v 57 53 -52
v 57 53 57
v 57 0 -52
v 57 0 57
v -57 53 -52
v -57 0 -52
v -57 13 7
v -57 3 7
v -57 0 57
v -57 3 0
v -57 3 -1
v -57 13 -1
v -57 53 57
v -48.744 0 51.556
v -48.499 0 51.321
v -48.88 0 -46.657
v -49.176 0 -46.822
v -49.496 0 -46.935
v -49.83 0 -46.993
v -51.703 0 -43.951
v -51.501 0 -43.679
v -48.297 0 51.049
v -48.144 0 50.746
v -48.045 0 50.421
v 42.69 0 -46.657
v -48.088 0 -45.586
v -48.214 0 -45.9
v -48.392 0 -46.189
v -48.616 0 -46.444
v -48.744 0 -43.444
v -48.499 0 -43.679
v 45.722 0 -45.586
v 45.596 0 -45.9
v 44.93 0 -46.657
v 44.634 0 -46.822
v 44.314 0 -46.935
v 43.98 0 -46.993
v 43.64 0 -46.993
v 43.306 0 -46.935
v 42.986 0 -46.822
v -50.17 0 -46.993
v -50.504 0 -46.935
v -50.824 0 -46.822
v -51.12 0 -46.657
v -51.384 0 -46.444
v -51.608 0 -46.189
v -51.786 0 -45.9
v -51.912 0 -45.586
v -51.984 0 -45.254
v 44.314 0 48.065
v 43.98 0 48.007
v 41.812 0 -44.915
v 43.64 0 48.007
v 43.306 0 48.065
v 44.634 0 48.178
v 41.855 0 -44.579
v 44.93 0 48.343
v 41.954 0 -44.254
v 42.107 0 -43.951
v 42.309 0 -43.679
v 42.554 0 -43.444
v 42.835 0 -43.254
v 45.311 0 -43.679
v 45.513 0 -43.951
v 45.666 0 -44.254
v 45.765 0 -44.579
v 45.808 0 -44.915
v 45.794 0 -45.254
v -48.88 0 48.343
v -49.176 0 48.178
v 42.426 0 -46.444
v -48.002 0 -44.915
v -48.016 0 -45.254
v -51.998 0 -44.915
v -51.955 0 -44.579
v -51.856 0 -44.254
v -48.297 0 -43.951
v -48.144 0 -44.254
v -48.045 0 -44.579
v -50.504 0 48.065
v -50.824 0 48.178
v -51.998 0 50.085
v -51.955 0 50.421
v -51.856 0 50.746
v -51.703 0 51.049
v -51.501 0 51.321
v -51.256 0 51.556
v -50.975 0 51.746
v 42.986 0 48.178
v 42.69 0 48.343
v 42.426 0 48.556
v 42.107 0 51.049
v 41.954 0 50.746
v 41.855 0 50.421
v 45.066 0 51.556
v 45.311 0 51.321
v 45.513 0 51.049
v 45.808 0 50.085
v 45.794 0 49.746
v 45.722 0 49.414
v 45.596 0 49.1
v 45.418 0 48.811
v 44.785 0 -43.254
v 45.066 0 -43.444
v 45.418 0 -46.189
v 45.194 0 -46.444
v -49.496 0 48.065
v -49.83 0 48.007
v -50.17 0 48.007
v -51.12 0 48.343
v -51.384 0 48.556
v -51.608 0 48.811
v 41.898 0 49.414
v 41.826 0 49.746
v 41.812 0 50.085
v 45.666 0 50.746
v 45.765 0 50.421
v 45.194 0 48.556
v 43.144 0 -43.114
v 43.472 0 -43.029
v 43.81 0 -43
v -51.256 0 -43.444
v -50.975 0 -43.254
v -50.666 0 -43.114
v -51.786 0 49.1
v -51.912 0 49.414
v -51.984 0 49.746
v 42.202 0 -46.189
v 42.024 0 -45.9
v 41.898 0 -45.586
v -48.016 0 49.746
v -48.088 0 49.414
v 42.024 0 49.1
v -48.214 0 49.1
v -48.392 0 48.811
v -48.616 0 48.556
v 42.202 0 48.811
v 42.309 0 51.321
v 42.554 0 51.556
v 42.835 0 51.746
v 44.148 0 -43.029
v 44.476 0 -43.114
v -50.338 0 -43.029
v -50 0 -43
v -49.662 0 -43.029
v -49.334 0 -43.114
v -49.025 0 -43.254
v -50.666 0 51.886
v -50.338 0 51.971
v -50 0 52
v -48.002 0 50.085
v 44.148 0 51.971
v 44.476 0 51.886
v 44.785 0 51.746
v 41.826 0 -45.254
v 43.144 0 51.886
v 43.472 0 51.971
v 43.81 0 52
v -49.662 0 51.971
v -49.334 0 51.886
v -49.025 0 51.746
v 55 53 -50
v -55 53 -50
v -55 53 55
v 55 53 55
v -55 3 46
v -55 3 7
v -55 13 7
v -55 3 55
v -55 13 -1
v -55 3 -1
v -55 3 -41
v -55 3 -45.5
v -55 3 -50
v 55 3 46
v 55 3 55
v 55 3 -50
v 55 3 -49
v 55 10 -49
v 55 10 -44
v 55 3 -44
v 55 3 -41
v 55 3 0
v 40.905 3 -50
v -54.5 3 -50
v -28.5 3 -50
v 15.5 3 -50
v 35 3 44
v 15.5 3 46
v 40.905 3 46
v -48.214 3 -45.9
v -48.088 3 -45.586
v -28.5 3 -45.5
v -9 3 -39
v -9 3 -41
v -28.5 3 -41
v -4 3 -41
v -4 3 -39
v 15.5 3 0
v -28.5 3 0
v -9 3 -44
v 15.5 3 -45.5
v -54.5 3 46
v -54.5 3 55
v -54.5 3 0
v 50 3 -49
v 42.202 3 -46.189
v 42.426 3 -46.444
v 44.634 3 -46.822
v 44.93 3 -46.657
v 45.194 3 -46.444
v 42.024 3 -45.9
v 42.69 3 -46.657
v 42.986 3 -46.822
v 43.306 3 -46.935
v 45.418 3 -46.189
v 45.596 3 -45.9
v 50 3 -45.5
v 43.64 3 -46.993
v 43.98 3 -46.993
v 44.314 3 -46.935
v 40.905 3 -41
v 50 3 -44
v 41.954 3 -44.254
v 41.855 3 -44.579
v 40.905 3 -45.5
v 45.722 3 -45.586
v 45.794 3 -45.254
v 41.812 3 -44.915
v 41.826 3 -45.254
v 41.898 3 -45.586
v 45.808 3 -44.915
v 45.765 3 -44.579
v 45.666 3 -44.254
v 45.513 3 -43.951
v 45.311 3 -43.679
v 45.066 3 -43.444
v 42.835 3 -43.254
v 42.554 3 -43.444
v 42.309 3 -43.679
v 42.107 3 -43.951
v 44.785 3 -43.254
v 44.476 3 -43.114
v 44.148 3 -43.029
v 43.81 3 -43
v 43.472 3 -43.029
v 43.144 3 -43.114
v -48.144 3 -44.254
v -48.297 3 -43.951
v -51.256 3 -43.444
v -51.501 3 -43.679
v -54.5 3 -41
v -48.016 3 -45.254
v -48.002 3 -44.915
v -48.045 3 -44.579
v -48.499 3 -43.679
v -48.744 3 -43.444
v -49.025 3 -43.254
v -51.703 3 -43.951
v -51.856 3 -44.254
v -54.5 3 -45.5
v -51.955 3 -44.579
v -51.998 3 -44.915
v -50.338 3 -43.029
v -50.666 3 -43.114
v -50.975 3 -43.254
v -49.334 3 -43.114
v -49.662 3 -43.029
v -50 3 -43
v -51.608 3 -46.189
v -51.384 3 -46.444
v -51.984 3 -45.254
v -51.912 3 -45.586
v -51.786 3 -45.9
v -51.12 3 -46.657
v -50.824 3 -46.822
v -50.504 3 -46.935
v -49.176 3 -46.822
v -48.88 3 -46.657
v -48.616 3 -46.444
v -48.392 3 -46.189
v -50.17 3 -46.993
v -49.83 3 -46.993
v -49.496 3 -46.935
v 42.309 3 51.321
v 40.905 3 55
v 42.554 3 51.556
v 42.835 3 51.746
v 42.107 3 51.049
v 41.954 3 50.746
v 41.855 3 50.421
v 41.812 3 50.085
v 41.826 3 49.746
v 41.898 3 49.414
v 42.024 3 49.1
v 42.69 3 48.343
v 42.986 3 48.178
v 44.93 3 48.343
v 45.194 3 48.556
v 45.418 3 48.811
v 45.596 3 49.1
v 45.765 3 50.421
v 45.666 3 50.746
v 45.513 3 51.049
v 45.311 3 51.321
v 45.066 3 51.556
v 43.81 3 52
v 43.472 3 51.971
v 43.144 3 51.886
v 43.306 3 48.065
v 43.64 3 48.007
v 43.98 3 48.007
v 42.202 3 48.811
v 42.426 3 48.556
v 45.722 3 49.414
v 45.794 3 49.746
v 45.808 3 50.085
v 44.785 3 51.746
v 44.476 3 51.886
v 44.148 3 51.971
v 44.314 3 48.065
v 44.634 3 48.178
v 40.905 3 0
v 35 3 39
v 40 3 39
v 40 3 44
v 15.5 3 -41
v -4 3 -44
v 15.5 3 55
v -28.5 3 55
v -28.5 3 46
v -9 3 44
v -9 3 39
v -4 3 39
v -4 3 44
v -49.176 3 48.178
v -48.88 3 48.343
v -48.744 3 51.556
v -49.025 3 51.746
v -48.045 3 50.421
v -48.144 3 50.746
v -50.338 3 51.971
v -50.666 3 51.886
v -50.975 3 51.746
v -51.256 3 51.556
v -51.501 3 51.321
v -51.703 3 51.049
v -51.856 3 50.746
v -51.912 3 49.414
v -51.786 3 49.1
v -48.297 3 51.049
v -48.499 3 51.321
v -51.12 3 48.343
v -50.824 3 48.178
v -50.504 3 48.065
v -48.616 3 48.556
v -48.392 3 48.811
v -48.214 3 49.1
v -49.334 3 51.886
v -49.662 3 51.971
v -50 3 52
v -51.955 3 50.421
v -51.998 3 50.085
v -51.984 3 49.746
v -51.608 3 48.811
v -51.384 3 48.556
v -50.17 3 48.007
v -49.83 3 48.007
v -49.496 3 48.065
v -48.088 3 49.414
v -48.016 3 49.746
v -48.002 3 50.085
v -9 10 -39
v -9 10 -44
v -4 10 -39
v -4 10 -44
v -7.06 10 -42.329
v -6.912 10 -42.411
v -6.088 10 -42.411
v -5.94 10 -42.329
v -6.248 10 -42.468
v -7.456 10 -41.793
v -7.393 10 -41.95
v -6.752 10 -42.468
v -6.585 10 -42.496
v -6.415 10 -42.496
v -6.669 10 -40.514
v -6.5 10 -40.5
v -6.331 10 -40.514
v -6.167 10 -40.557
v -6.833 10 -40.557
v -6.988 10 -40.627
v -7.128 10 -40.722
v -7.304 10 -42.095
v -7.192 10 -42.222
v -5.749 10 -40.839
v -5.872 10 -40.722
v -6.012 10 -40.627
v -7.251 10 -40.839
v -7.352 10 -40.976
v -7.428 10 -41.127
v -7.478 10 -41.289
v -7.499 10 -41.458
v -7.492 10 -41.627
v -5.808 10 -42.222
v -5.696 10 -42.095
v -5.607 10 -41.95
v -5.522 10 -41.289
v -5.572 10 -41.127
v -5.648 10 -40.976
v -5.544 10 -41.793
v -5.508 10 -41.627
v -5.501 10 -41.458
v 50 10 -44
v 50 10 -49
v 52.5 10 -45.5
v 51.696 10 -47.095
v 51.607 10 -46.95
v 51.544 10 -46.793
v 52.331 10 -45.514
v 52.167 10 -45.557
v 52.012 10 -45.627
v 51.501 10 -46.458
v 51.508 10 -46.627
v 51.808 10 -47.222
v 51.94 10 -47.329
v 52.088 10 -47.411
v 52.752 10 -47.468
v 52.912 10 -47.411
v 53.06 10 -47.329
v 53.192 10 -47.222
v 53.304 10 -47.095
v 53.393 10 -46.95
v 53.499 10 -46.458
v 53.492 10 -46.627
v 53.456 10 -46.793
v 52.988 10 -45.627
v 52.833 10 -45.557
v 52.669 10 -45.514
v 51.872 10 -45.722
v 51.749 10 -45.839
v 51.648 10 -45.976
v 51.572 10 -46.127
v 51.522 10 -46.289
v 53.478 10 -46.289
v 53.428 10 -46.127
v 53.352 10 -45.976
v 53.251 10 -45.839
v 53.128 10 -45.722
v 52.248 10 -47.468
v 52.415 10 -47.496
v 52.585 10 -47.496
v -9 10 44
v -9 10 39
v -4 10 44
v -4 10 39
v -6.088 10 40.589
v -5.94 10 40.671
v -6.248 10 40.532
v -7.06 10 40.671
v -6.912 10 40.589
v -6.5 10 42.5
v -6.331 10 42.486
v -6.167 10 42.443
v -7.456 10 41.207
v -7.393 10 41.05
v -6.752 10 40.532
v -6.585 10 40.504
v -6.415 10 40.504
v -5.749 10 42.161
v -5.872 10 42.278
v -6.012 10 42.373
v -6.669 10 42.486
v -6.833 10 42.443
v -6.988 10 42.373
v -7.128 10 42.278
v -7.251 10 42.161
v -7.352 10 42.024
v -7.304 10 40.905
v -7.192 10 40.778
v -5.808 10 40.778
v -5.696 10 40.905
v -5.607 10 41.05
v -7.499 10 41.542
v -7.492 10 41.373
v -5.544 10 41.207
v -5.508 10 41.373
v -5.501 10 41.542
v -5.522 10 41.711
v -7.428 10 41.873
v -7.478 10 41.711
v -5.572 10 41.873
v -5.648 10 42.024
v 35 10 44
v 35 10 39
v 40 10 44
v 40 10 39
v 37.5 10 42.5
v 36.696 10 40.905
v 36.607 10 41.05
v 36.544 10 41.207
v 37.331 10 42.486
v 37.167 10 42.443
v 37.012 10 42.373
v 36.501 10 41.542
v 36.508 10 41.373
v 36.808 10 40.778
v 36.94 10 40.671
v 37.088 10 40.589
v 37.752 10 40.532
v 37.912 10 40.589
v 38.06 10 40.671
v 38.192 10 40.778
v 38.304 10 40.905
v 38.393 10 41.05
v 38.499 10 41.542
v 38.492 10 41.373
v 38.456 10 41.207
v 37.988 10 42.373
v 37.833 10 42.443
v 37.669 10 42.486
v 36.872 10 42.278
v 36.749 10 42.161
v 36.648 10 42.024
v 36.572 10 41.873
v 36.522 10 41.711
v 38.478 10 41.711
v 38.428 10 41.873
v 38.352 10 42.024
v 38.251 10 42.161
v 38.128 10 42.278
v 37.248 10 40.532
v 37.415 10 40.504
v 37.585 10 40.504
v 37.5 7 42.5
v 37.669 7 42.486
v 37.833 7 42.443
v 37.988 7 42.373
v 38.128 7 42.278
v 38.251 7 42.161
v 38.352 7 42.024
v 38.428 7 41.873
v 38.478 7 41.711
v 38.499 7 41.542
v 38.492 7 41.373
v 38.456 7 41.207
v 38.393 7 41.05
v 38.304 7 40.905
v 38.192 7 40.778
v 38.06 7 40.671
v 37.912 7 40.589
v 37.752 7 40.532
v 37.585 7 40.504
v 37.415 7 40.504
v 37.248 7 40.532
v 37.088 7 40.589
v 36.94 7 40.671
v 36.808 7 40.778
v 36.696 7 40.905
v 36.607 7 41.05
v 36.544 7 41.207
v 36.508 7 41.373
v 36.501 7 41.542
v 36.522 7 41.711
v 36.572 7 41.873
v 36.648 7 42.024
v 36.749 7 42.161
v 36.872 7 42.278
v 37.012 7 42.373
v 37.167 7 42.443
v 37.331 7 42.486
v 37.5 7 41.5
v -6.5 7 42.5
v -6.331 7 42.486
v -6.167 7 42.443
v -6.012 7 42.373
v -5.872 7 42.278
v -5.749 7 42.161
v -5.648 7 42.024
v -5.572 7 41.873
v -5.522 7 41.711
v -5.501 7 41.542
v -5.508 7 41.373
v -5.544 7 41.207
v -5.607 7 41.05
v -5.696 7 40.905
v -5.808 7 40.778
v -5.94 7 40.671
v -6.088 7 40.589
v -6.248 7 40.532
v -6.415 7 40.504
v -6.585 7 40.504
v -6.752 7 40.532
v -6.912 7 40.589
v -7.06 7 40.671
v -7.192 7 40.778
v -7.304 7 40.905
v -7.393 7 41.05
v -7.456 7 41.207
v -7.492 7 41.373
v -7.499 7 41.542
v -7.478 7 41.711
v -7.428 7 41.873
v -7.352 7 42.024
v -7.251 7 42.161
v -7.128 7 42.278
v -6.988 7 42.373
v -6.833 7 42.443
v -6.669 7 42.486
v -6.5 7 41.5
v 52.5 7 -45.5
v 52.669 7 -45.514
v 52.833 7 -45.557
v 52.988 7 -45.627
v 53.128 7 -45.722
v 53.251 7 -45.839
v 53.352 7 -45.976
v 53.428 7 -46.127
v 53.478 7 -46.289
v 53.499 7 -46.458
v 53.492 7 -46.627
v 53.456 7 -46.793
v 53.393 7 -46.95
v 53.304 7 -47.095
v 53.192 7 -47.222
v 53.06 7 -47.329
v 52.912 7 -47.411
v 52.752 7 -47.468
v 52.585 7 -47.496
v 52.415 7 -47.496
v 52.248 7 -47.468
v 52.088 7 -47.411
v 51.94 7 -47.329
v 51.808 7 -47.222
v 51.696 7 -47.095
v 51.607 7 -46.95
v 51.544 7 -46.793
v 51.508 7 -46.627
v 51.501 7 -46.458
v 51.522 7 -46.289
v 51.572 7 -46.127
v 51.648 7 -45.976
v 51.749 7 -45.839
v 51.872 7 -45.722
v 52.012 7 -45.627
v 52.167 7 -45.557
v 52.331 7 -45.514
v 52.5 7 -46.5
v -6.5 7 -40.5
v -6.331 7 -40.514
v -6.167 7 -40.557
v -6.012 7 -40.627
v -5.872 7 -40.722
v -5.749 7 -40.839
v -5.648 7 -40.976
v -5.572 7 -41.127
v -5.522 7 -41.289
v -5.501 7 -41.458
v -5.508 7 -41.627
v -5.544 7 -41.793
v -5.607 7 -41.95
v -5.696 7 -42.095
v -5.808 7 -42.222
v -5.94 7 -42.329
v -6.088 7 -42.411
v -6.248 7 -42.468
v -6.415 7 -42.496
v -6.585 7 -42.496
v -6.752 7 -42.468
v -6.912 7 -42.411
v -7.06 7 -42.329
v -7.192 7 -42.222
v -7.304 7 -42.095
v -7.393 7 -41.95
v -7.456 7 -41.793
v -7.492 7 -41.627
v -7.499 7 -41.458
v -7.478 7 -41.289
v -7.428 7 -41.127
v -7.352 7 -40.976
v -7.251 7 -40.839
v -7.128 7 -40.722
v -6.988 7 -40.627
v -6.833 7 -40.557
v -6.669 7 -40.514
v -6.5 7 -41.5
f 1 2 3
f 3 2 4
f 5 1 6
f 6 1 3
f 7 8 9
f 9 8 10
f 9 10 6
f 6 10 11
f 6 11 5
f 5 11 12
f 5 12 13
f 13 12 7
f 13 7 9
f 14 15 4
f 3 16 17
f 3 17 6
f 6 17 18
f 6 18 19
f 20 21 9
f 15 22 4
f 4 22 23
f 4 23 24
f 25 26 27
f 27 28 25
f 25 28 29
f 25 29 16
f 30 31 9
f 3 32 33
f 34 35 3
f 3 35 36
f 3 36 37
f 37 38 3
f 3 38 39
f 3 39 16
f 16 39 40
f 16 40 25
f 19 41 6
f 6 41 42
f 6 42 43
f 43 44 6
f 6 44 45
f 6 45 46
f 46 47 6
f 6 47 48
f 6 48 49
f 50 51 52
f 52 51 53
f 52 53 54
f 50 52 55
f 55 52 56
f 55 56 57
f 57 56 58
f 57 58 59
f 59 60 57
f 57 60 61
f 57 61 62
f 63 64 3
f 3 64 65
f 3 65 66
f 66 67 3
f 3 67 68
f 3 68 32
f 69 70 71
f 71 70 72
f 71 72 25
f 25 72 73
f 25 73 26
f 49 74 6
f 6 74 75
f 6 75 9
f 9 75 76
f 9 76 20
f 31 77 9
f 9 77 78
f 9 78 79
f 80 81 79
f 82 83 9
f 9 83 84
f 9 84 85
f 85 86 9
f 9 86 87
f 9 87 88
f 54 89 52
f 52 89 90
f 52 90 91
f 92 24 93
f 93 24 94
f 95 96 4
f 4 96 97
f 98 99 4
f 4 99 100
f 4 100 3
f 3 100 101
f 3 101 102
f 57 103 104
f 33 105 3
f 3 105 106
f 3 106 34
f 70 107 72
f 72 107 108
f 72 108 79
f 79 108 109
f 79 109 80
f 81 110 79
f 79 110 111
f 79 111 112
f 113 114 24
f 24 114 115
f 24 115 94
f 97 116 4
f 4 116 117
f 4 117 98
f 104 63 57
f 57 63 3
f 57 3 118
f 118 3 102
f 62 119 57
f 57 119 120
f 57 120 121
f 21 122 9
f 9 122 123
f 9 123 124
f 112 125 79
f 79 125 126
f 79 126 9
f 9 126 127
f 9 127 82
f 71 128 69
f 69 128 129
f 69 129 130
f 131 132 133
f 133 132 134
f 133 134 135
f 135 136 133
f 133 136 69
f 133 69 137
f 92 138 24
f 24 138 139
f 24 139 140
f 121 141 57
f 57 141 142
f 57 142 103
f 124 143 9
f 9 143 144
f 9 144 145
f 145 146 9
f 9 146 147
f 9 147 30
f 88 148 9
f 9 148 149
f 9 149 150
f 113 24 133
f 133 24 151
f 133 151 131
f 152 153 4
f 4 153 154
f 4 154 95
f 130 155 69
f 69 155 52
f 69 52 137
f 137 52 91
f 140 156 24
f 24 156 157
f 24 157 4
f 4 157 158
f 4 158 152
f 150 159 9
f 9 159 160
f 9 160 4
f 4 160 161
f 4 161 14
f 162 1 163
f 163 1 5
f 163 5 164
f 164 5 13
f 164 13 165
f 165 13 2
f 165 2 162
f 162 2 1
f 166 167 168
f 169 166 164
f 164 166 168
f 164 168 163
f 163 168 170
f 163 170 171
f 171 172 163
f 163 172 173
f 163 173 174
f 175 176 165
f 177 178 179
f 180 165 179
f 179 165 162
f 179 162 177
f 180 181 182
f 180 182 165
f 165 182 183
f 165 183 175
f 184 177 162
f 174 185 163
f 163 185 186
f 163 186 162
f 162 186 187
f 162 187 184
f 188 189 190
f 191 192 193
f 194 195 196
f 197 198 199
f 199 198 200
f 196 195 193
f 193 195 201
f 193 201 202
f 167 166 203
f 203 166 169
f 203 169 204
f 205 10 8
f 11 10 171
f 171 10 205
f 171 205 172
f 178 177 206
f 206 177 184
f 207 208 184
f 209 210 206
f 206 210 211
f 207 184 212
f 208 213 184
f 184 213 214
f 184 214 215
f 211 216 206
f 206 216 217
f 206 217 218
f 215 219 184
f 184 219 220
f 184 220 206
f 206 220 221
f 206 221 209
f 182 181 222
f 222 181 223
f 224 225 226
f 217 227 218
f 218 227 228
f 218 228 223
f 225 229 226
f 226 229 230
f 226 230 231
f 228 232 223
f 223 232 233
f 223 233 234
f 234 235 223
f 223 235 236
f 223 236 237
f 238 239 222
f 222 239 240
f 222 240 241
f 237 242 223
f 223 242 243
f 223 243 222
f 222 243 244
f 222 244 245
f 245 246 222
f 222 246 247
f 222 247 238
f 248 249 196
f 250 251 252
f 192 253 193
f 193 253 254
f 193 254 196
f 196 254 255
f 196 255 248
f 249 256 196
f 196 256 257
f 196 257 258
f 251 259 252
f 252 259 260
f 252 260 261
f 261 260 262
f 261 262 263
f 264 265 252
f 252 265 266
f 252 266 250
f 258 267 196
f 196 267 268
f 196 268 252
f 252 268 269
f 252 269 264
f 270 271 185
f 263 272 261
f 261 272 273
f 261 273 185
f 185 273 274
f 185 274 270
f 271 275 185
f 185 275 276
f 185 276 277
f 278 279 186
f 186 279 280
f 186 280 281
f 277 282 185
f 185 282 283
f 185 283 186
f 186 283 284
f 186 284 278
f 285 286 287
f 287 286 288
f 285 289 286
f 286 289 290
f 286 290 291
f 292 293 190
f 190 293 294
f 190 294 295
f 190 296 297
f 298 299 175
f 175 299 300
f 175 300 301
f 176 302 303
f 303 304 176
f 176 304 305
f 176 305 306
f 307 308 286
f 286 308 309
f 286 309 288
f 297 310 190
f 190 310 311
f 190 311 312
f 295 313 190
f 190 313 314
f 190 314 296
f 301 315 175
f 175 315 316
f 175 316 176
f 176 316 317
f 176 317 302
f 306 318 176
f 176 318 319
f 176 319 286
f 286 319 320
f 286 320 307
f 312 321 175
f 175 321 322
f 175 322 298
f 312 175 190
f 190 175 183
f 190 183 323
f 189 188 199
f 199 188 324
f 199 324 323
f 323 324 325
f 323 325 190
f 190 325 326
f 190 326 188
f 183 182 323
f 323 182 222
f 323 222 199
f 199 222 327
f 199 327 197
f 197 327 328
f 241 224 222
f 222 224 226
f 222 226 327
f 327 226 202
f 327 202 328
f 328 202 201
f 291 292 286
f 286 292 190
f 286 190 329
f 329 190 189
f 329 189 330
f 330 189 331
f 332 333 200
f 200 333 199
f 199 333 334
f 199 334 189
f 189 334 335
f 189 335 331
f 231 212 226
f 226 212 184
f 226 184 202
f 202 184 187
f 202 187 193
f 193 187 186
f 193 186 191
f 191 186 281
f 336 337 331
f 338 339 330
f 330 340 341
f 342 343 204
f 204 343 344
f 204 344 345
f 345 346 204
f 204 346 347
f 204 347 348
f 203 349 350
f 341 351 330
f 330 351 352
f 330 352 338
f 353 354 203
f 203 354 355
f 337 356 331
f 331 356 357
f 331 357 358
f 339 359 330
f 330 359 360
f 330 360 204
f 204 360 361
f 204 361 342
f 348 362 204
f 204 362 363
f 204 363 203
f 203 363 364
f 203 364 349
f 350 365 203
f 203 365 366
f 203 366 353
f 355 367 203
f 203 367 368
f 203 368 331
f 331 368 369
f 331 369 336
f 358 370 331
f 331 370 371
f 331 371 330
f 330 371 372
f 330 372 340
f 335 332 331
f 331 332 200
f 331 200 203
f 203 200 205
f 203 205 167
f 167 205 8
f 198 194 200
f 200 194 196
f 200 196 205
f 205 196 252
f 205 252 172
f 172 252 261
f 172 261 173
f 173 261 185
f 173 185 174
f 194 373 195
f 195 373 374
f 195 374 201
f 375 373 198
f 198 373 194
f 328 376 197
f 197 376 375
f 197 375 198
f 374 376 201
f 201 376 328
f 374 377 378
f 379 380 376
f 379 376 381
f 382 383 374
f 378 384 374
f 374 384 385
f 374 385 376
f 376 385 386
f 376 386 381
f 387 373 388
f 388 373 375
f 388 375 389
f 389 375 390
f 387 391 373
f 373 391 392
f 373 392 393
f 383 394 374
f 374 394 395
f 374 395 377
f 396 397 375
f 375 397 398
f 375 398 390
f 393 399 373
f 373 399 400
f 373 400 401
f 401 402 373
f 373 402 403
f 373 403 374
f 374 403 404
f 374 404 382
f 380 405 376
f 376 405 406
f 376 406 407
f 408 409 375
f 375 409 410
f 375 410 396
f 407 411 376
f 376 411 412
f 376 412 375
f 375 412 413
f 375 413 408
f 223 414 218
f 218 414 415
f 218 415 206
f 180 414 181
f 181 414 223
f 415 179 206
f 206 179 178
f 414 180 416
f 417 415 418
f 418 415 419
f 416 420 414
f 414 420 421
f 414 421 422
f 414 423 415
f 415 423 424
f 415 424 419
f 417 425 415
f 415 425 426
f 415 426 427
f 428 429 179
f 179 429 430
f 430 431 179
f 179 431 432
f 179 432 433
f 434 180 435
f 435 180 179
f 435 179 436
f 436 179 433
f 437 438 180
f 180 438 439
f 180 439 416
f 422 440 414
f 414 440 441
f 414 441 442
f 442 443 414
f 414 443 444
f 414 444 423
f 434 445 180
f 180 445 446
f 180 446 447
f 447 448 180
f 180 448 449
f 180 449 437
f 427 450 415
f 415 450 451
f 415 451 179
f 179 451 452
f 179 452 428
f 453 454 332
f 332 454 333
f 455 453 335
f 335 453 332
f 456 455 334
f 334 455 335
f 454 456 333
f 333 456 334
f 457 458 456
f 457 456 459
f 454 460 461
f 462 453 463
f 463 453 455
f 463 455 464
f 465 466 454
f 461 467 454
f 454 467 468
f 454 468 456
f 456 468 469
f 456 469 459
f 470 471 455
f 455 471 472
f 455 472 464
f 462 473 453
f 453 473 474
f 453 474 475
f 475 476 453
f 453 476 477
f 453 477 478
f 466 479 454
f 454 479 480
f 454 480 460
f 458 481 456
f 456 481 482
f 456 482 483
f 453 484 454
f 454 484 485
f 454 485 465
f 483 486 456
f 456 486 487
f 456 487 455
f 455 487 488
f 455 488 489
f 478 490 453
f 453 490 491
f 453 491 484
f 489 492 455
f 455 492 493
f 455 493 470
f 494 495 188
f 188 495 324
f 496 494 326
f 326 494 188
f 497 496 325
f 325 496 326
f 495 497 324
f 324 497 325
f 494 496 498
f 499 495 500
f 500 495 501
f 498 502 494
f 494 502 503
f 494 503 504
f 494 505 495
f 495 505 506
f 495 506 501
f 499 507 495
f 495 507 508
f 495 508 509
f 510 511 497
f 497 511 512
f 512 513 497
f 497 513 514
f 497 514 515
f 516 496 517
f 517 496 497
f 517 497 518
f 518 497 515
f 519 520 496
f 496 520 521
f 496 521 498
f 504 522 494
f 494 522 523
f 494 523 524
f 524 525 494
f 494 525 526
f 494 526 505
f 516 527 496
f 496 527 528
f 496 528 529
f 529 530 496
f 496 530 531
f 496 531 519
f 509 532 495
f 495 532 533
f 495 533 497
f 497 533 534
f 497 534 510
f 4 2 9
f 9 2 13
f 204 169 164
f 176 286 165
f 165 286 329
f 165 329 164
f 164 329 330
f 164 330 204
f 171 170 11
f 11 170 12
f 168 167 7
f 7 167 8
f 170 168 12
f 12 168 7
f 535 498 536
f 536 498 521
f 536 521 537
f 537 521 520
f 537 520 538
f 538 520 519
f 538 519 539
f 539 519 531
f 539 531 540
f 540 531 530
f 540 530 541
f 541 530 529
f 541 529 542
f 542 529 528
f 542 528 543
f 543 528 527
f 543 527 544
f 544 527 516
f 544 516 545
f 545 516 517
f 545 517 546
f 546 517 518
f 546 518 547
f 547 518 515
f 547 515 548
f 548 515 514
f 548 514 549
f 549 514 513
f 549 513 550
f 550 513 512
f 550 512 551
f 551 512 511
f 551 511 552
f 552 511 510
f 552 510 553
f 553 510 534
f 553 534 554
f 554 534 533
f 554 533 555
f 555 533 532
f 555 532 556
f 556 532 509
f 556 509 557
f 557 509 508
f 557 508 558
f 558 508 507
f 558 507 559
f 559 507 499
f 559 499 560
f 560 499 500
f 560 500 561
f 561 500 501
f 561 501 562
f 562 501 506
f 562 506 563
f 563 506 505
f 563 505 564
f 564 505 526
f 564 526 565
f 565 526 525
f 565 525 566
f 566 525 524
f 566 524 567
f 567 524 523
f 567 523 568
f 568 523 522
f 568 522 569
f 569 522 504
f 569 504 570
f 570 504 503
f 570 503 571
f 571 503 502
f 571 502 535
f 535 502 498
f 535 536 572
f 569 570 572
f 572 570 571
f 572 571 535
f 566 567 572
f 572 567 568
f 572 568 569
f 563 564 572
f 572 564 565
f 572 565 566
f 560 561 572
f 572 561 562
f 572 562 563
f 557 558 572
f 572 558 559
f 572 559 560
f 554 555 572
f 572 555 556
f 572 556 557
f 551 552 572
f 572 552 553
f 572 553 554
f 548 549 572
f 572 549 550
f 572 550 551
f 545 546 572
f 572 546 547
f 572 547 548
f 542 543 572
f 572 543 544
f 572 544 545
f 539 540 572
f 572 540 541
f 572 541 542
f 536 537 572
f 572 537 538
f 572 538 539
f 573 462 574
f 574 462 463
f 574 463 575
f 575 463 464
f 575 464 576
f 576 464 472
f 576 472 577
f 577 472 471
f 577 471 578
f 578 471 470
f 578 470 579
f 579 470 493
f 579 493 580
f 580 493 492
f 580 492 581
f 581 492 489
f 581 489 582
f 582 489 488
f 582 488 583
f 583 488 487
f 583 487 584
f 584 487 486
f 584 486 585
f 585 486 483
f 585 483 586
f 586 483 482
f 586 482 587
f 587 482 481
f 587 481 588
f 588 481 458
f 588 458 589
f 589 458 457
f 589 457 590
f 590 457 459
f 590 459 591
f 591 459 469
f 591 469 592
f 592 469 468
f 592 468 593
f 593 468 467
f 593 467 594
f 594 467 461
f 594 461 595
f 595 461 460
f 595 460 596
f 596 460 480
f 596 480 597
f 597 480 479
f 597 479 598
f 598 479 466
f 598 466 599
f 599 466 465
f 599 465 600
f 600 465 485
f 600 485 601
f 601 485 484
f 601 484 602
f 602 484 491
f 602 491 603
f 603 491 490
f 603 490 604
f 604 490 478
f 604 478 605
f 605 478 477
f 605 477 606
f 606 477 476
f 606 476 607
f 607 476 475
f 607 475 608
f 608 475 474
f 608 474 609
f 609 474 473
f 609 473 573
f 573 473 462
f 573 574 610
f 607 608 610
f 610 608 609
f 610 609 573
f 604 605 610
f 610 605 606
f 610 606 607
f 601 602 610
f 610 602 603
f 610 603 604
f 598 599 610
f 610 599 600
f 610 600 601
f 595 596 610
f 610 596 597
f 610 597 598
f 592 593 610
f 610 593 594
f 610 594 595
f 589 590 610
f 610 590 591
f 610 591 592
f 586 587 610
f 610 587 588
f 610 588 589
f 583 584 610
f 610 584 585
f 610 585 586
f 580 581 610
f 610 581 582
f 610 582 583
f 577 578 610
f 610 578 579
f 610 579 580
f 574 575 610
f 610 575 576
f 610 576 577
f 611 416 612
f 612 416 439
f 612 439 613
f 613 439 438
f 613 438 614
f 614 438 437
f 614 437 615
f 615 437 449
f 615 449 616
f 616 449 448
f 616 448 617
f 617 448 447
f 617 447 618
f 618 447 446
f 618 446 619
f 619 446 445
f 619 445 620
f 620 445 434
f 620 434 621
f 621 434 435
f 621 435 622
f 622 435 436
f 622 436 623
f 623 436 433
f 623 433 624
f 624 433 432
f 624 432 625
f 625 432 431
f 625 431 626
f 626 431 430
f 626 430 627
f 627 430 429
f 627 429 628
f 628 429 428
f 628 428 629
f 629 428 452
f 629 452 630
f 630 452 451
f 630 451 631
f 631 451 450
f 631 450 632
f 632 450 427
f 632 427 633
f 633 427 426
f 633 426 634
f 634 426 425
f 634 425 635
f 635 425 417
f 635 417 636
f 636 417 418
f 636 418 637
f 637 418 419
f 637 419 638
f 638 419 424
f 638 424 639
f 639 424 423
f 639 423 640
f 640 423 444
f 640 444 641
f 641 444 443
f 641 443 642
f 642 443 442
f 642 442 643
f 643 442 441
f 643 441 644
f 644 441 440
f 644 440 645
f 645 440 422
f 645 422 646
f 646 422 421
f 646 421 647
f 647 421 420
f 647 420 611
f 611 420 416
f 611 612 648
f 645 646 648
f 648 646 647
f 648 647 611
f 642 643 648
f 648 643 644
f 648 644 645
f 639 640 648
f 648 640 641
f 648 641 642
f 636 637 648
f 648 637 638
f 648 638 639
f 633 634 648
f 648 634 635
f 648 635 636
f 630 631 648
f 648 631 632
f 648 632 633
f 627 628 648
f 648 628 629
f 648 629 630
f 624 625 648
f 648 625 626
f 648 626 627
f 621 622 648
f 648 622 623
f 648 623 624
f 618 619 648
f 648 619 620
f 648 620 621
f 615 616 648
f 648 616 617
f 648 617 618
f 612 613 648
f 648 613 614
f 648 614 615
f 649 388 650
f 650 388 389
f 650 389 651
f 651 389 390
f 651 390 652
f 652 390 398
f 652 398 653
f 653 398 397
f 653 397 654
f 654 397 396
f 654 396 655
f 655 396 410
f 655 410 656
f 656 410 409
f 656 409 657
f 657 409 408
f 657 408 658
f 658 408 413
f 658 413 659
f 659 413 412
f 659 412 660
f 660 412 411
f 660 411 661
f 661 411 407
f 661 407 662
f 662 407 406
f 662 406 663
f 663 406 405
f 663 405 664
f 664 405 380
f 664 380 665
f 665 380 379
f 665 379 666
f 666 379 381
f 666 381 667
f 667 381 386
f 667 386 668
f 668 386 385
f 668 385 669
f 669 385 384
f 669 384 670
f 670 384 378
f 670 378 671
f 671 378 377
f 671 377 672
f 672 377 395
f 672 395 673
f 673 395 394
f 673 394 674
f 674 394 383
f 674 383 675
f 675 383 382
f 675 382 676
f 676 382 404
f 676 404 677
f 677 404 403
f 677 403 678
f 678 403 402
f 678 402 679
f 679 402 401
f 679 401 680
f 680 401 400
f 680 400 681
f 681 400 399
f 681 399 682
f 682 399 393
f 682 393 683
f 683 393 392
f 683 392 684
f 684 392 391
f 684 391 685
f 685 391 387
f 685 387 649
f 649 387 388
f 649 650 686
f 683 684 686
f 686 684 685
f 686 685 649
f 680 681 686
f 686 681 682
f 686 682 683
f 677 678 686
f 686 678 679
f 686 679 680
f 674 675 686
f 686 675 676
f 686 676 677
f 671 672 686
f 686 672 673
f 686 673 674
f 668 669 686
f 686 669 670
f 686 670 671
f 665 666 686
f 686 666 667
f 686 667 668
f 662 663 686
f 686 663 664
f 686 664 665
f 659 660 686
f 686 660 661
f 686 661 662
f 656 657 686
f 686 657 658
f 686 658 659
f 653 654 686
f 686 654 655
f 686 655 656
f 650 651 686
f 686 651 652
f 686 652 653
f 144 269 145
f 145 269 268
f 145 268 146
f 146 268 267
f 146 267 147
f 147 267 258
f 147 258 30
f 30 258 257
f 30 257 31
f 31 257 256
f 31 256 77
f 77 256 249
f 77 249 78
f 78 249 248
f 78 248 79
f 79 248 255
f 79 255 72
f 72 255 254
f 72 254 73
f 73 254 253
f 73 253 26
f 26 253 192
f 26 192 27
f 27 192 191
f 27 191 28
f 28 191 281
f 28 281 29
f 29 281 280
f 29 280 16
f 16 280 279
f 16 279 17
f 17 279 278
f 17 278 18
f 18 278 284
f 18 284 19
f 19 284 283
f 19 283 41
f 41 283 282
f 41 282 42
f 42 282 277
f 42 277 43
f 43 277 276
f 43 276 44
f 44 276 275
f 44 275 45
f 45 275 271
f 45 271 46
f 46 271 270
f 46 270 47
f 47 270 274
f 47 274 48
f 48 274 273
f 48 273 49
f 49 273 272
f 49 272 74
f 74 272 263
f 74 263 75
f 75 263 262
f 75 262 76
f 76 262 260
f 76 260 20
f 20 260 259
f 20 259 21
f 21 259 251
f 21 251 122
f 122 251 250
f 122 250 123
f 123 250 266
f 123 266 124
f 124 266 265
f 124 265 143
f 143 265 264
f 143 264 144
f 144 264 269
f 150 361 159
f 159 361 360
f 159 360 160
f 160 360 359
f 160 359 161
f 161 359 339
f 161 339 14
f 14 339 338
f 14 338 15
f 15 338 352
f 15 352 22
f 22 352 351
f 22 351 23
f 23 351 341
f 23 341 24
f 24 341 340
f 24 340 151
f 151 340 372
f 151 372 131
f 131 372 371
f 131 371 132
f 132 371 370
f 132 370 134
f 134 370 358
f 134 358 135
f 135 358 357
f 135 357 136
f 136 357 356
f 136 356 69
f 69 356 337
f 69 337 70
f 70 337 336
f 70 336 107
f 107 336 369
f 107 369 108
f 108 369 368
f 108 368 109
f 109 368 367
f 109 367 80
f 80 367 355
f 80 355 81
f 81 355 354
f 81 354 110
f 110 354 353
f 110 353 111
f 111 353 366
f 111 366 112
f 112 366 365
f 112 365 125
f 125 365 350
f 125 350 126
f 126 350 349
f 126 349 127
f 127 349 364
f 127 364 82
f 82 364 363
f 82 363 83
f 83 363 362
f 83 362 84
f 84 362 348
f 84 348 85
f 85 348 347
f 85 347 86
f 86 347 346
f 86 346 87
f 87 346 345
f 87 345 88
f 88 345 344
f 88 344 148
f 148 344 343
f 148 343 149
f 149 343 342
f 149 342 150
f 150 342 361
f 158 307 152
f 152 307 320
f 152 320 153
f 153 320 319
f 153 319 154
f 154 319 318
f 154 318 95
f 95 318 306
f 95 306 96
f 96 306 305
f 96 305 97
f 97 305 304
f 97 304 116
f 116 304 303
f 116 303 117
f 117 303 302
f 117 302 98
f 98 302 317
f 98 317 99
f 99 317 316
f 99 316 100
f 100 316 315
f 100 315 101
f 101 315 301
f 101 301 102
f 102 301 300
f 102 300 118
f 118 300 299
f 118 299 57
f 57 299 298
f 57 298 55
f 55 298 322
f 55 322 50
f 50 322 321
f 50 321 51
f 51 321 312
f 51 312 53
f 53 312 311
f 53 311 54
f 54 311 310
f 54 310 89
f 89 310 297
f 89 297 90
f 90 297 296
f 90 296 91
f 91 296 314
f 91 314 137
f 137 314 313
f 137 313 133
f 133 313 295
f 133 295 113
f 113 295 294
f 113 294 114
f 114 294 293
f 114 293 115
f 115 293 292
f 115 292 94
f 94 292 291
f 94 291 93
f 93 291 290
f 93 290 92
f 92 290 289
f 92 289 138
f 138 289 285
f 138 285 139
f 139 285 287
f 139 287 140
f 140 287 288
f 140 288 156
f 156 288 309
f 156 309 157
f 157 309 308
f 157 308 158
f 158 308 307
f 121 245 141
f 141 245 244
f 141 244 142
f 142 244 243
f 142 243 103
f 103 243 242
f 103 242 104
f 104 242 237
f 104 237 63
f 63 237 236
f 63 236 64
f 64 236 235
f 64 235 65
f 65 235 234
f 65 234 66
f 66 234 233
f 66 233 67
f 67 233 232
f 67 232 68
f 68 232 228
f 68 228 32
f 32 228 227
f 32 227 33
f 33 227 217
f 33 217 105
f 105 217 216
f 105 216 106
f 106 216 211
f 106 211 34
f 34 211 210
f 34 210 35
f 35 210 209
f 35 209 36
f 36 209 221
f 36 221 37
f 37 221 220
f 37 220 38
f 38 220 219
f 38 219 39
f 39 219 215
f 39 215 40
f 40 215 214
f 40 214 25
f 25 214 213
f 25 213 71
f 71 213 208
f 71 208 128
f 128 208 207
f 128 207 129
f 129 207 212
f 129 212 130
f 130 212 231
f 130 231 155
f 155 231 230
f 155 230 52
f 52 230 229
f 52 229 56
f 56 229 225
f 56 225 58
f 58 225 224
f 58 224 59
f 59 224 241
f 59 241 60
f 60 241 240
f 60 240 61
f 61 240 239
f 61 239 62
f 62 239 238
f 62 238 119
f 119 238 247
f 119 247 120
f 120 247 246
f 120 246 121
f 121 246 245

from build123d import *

# Parameters (mm, degrees)
SKETCH1_W           = 114
SKETCH1_H           = 104
BOSS_EXTRUDE1_DEPTH = 3
SKETCH2_W           = 114
SKETCH2_H           = 104
SKETCH2_W_2         = 110
SKETCH2_H_2         = 100
BOSS_EXTRUDE2_DEPTH = 50
SKETCH3_W           = 5
SKETCH3_H           = 5
BOSS_EXTRUDE4_DEPTH = 7
SKETCH8_W           = 114
SKETCH8_H           = 53
BOSS_EXTRUDE6_DEPTH = 5
SKETCH9_W           = 110
SKETCH9_H           = 50
CUT_EXTRUDE2_DEPTH  = 5
SKETCH12_W          = 8
SKETCH12_H          = 10
CUT_EXTRUDE3_DEPTH  = 2
SKETCH14_R          = 1
CUT_EXTRUDE5_DEPTH  = 3
SKETCH15_R          = 2
CUT_EXTRUDE6_DEPTH  = 3


with BuildPart() as part:
    # Sketch1 → Boss-Extrude1 (new body)
    with BuildSketch(Plane(origin=(0, 0, 0), x_dir=(1, 0, 0), z_dir=(0, 1, 0))):
        Rectangle(SKETCH1_W, SKETCH1_H)
    extrude(amount=BOSS_EXTRUDE1_DEPTH)

    # Sketch2 → Boss-Extrude2 (add)
    with BuildSketch(Plane(origin=(0, 3, 0), x_dir=(1, 0, 0), z_dir=(0, 1, 0))):
        Rectangle(SKETCH2_W, SKETCH2_H)
        Rectangle(SKETCH2_W_2, SKETCH2_H_2, mode=Mode.SUBTRACT)
    extrude(amount=BOSS_EXTRUDE2_DEPTH)

    # Sketch3 → Boss-Extrude4 (add)
    with BuildSketch(Plane(origin=(0, 3, 0), x_dir=(1, 0, 0), z_dir=(0, 1, 0))):
        with Locations((-6.5, 41.5)):
            Rectangle(SKETCH3_W, SKETCH3_H)
        with Locations((52.5, 46.5)):
            Rectangle(SKETCH3_W, SKETCH3_H)
        with Locations((-6.5, -41.5)):
            Rectangle(SKETCH3_W, SKETCH3_H)
        with Locations((37.5, -41.5)):
            Rectangle(SKETCH3_W, SKETCH3_H)
    extrude(amount=BOSS_EXTRUDE4_DEPTH)

    # Sketch8 → Boss-Extrude6 (add)
    with BuildSketch(Plane.XY.offset(52)):
        with Locations((0, 26.5)):
            Rectangle(SKETCH8_W, SKETCH8_H)
    extrude(amount=BOSS_EXTRUDE6_DEPTH)

    # Sketch9 → Cut-Extrude2 (cut)
    with BuildSketch(Plane(origin=(0, 0, 50), x_dir=(-1, 0, 0), z_dir=(0, 0, -1))):
        with Locations((0, 28)):
            Rectangle(SKETCH9_W, SKETCH9_H)
    extrude(amount=-CUT_EXTRUDE2_DEPTH, mode=Mode.SUBTRACT)

    # Sketch12 → Cut-Extrude3 (cut)
    with BuildSketch(Plane(origin=(-55, 0, 0), x_dir=(0, 0, -1), z_dir=(1, 0, 0))):
        with Locations((-3, 8)):
            Rectangle(SKETCH12_W, SKETCH12_H)
    extrude(amount=-CUT_EXTRUDE3_DEPTH, mode=Mode.SUBTRACT)

    # Sketch14 → Cut-Extrude5 (cut)
    with BuildSketch(Plane(origin=(0, 10, 0), x_dir=(1, 0, 0), z_dir=(0, 1, 0))):
        with Locations((-6.5, 41.5)):
            Circle(SKETCH14_R)
        with Locations((-6.5, -41.5)):
            Circle(SKETCH14_R)
        with Locations((37.5, -41.5)):
            Circle(SKETCH14_R)
        with Locations((52.5, 46.5)):
            Circle(SKETCH14_R)
    extrude(amount=-CUT_EXTRUDE5_DEPTH, mode=Mode.SUBTRACT)

    # Sketch15 → Cut-Extrude6 (cut)
    with BuildSketch(Plane(origin=(0, 3, 0), x_dir=(1, 0, 0), z_dir=(0, 1, 0))):
        with Locations((-50, 45)):
            Circle(SKETCH15_R)
        with Locations((-50, -50)):
            Circle(SKETCH15_R)
        with Locations((43.810047303, -50)):
            Circle(SKETCH15_R)
        with Locations((43.810047303, 45)):
            Circle(SKETCH15_R)
    extrude(amount=-CUT_EXTRUDE6_DEPTH, mode=Mode.SUBTRACT)


solid = part.part
